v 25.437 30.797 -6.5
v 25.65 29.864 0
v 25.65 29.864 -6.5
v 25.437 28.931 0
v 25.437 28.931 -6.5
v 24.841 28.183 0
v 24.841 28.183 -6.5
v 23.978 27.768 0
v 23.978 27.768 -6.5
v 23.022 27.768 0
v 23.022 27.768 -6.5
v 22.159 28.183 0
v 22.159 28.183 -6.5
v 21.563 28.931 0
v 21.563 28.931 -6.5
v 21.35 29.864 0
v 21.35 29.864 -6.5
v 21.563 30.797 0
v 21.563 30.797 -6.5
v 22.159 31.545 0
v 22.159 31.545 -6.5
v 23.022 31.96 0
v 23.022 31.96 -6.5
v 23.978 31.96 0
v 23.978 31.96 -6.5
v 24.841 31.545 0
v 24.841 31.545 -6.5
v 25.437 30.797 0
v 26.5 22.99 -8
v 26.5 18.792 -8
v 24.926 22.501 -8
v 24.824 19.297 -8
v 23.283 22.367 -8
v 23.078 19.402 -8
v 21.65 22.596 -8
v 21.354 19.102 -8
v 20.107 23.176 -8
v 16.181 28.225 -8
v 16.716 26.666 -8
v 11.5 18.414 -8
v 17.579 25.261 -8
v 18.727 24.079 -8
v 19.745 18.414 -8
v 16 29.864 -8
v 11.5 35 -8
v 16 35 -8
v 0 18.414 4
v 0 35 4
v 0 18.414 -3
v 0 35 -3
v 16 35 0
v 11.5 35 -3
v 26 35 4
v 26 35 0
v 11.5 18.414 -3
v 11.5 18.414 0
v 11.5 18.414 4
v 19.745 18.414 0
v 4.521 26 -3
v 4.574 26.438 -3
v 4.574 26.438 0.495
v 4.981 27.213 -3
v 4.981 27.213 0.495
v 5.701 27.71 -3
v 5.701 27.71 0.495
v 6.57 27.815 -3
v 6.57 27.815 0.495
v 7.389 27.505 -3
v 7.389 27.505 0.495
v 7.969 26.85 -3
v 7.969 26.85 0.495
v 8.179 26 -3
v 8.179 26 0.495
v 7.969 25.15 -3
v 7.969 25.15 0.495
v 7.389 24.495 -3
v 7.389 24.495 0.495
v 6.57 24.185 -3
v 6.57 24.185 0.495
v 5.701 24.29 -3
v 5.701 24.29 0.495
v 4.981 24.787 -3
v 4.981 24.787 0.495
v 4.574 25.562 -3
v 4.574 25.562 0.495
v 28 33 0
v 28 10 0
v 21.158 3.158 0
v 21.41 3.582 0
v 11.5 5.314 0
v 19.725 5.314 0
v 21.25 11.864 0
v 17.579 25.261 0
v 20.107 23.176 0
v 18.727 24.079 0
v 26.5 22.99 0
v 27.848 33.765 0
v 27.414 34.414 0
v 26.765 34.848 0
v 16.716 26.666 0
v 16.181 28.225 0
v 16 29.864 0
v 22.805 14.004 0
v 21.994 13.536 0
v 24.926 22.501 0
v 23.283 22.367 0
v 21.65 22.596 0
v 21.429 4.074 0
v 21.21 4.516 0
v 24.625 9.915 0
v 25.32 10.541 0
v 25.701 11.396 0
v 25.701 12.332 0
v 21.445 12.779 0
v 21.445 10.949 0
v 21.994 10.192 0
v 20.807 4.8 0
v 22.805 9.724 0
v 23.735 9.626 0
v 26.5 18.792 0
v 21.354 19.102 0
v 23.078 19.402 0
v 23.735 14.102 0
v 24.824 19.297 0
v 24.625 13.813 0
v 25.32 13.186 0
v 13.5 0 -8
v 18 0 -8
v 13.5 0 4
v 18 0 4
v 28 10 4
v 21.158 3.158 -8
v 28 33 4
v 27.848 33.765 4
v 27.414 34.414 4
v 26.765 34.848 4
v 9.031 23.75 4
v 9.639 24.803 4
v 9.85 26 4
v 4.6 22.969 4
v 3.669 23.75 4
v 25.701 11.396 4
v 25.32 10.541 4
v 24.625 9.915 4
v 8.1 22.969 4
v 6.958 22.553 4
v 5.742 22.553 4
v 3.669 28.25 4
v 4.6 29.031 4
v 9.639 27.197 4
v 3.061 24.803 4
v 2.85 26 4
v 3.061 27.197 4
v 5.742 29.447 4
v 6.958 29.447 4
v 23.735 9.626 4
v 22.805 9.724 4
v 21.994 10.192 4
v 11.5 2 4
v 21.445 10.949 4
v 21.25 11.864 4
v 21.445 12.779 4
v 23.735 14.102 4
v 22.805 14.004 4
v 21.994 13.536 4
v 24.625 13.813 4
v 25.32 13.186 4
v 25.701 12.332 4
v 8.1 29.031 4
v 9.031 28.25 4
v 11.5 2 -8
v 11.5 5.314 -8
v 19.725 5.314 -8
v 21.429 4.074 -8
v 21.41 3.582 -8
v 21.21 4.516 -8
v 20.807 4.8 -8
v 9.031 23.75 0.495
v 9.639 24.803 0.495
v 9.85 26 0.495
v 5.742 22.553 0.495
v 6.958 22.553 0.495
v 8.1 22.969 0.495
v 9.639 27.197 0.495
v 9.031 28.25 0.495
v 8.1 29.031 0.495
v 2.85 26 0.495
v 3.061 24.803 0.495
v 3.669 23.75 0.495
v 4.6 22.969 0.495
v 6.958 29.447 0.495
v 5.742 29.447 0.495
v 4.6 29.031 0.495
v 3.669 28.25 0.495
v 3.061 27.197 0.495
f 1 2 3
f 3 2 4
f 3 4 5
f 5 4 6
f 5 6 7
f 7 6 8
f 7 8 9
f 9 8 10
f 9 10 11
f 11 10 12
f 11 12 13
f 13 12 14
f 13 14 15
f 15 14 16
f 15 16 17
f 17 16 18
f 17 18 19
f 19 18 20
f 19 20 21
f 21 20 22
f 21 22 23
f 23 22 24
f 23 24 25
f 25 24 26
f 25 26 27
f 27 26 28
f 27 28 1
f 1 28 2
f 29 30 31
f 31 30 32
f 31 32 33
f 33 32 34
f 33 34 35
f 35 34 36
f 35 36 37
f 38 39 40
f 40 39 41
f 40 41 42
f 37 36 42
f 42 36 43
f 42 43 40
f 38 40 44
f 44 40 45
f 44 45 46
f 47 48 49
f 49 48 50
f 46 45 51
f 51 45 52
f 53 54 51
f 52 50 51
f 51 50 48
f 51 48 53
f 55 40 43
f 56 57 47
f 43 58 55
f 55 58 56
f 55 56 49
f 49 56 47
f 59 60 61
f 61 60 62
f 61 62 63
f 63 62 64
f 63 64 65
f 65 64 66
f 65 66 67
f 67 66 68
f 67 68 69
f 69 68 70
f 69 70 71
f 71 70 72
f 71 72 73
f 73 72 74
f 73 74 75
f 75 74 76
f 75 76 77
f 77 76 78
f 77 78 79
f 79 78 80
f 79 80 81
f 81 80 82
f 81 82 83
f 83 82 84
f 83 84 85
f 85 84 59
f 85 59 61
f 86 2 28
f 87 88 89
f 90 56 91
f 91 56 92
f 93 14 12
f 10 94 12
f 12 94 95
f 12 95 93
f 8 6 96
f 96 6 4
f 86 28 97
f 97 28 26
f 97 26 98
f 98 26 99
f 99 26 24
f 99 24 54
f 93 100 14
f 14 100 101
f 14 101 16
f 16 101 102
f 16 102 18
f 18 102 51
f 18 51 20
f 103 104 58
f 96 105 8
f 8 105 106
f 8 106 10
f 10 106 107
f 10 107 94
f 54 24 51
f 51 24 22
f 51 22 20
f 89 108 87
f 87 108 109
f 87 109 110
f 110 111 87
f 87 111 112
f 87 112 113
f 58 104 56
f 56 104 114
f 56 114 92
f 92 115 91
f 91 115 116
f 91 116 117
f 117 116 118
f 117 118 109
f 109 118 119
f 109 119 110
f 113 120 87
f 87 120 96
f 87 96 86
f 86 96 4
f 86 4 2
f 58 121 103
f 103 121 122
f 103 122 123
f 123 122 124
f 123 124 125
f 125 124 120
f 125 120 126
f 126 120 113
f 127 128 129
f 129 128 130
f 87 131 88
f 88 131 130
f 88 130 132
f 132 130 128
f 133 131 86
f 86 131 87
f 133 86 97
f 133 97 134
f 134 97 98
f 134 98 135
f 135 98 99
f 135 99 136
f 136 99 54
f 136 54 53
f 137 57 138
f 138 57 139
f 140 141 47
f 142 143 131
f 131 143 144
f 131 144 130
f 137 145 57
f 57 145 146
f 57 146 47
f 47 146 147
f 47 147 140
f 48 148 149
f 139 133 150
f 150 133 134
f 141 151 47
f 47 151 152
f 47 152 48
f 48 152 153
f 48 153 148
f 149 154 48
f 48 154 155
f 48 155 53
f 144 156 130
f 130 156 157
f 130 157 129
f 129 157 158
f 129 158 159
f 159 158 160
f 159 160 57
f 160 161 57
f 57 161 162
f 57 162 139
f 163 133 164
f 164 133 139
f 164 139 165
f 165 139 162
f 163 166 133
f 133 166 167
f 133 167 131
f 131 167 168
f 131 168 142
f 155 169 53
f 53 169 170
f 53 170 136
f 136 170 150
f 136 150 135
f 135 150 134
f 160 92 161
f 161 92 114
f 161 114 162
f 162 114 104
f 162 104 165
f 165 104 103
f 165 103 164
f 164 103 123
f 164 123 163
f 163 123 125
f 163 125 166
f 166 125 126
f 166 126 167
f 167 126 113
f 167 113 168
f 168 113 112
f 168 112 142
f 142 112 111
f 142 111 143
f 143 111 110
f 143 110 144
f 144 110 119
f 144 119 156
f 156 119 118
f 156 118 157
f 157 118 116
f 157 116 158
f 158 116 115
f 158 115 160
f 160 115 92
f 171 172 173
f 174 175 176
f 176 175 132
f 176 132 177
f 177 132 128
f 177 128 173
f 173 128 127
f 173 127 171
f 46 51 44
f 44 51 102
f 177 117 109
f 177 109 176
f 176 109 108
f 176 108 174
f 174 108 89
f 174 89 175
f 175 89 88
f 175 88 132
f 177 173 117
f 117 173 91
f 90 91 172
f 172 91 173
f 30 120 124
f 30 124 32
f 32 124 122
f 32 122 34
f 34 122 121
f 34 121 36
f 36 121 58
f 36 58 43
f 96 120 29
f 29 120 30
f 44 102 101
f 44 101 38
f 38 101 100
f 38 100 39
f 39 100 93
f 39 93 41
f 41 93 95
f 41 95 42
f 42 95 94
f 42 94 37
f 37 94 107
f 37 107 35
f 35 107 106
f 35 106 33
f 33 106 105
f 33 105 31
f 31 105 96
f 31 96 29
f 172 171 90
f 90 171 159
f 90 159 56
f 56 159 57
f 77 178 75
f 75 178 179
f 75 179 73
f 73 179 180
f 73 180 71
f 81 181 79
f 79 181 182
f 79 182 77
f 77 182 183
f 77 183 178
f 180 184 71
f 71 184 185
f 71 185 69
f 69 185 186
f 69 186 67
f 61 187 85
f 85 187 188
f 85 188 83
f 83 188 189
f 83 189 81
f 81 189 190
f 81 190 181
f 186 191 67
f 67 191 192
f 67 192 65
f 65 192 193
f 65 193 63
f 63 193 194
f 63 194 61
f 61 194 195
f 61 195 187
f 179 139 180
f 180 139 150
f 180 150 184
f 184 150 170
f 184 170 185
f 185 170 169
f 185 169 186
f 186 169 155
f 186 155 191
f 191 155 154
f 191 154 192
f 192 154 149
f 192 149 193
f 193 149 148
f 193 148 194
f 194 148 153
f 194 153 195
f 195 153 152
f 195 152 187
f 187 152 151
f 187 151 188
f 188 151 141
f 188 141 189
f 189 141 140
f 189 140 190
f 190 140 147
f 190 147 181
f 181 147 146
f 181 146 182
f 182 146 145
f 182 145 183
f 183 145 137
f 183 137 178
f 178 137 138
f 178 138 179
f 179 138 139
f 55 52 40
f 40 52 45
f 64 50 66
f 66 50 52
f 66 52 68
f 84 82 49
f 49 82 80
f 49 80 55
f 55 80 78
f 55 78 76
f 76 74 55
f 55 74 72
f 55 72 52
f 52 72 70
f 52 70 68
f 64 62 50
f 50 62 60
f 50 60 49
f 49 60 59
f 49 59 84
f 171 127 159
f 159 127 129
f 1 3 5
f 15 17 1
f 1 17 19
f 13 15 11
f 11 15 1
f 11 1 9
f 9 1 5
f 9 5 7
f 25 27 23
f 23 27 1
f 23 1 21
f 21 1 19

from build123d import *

# Parameters (mm, degrees)
BOSS_EXTRUDE1_DEPTH                            = 4
SKETCH2_R                                      = 2.25
CUT_EXTRUDE1_DEPTH                             = 46
SKETCH2_3_R                                    = 2.15
BOSS_EXTRUDE2_DEPTH                            = 8
BOSS_EXTRUDE4_DEPTH                            = 8
SKETCH6_W                                      = 11.5
SKETCH6_H                                      = 18.413961031
CUT_EXTRUDE2_DEPTH                             = 47.400431032
SKETCH12_W                                     = 8
SKETCH12_H                                     = 13.1
CUT_EXTRUDE3_DEPTH                             = 40.286161686
CBORE_FOR_6_SOCKET_HEAD_CAP_SCREW1_D           = 3.6576
CBORE_FOR_6_SOCKET_HEAD_CAP_SCREW1_CBORE_D     = 7
CBORE_FOR_6_SOCKET_HEAD_CAP_SCREW1_CBORE_DEPTH = 3.5052
SKETCH13_W                                     = 11.5
SKETCH13_H                                     = 16.586038969
CUT_EXTRUDE4_DEPTH                             = 5
CHAMFER1_SIZE                                  = 2
CUT_EXTRUDE5_START                             = -1.5
SKETCH14_R                                     = 2.15
CUT_EXTRUDE5_DEPTH                             = 1.5


with BuildPart() as part:
    # Sketch1 → Boss-Extrude1 (new body)
    with BuildSketch(Plane.XY):
        with BuildLine():
            Line((18, 0), (28, 10))
            Line((28, 10), (28, 33))
            ThreePointArc((28, 33), (27.414213562, 34.414213562), (26, 35))
            Line((26, 35), (0, 35))
            Line((0, 35), (0, 0))
            Line((0, 0), (18, 0))
        make_face()
    extrude(amount=BOSS_EXTRUDE1_DEPTH)

    # Sketch2 → Cut-Extrude1 (cut, through all)
    with BuildSketch(Plane(origin=(0, 0, 0), x_dir=(-1, 0, 0), z_dir=(0, 0, -1))):
        with Locations((-23.5, 11.863961031)):
            Circle(SKETCH2_R)
    extrude(amount=-CUT_EXTRUDE1_DEPTH, mode=Mode.SUBTRACT)

    # Sketch2<3> → Boss-Extrude2 (add)
    with BuildSketch(Plane(origin=(0, 0, 0), x_dir=(-1, 0, 0), z_dir=(0, 0, -1))):
        with Locations(Location((-23.5, 29.863961031, 0), (0, 0, 180))):
            Circle(SKETCH2_3_R)
    extrude(amount=BOSS_EXTRUDE2_DEPTH)

    # Sketch2<5> → Boss-Extrude4 (add)
    with BuildSketch(Plane(origin=(0, 0, 0), x_dir=(-1, 0, 0), z_dir=(0, 0, -1))):
        with BuildLine():
            ThreePointArc((-26.5, 18.792344681), (-23.077745882, 19.402143932), (-19.745003329, 18.413961031))
            Line((-19.745003329, 18.413961031), (-15.95, 18.413961031))
            Line((-15.95, 18.413961031), (-15.95, 5.313961031))
            Line((-15.95, 5.313961031), (-19.725, 5.313961031))
            ThreePointArc((-19.725, 5.313961031), (-20.25595921, 5.035394245), (-20.807324798, 4.799782009))
            ThreePointArc((-20.807324798, 4.799782009), (-21.429052247, 4.074422526), (-21.15825613, 3.15825613))
            Line((-21.15825613, 3.15825613), (-18, 0))
            Line((-18, 0), (0, 0))
            Line((0, 0), (0, 35))
            Line((0, 35), (-16, 35))
            Line((-16, 35), (-16, 29.863961031))
            ThreePointArc((-16, 29.863961031), (-19.392080819, 23.589010832), (-26.5, 22.990097488))
            Line((-26.5, 22.990097488), (-26.5, 18.792344681))
        make_face()
    extrude(amount=BOSS_EXTRUDE4_DEPTH)

    # Sketch6 → Cut-Extrude2 (cut, through all)
    with BuildSketch(Plane(origin=(0, 0, -8), x_dir=(-1, 0, 0), z_dir=(0, 0, -1))):
        with Locations((-5.75, 9.206980515)):
            Rectangle(SKETCH6_W, SKETCH6_H)
    extrude(amount=-CUT_EXTRUDE2_DEPTH, mode=Mode.SUBTRACT)

    # Sketch12 → Cut-Extrude3 (cut, through all)
    with BuildSketch(Plane(origin=(15.95, 0, 0), x_dir=(0, 0, -1), z_dir=(1, 0, 0))):
        with Locations((4, 11.863961031)):
            Rectangle(SKETCH12_W, SKETCH12_H)
    extrude(amount=-CUT_EXTRUDE3_DEPTH, mode=Mode.SUBTRACT)

    # CBORE for #6 Socket Head Cap Screw1 (through all)
    with Locations(Plane.XY.offset(4)):
        with Locations((6.35, 26)):
            CounterBoreHole(CBORE_FOR_6_SOCKET_HEAD_CAP_SCREW1_D / 2, CBORE_FOR_6_SOCKET_HEAD_CAP_SCREW1_CBORE_D / 2, CBORE_FOR_6_SOCKET_HEAD_CAP_SCREW1_CBORE_DEPTH)

    # Sketch13 → Cut-Extrude4 (cut)
    with BuildSketch(Plane(origin=(0, 0, -8), x_dir=(-1, 0, 0), z_dir=(0, 0, -1))):
        with Locations((-5.75, 26.706980515)):
            Rectangle(SKETCH13_W, SKETCH13_H)
    extrude(amount=-CUT_EXTRUDE4_DEPTH, mode=Mode.SUBTRACT)

    # Chamfer1
    chamfer1_edges = [part.edges().sort_by_distance(p)[0] for p in [
        (11.5, 0, -2),
    ]]
    chamfer(chamfer1_edges, length=CHAMFER1_SIZE)

    # Sketch14 → Cut-Extrude5 (cut)
    with BuildSketch(Plane(origin=(0, 0, -8), x_dir=(-1, 0, 0), z_dir=(0, 0, -1)).offset(CUT_EXTRUDE5_START)):
        with Locations(Location((-23.5, 29.863961031, 0), (0, 0, 180))):
            Circle(SKETCH14_R)
    extrude(amount=CUT_EXTRUDE5_DEPTH, mode=Mode.SUBTRACT)


solid = part.part
